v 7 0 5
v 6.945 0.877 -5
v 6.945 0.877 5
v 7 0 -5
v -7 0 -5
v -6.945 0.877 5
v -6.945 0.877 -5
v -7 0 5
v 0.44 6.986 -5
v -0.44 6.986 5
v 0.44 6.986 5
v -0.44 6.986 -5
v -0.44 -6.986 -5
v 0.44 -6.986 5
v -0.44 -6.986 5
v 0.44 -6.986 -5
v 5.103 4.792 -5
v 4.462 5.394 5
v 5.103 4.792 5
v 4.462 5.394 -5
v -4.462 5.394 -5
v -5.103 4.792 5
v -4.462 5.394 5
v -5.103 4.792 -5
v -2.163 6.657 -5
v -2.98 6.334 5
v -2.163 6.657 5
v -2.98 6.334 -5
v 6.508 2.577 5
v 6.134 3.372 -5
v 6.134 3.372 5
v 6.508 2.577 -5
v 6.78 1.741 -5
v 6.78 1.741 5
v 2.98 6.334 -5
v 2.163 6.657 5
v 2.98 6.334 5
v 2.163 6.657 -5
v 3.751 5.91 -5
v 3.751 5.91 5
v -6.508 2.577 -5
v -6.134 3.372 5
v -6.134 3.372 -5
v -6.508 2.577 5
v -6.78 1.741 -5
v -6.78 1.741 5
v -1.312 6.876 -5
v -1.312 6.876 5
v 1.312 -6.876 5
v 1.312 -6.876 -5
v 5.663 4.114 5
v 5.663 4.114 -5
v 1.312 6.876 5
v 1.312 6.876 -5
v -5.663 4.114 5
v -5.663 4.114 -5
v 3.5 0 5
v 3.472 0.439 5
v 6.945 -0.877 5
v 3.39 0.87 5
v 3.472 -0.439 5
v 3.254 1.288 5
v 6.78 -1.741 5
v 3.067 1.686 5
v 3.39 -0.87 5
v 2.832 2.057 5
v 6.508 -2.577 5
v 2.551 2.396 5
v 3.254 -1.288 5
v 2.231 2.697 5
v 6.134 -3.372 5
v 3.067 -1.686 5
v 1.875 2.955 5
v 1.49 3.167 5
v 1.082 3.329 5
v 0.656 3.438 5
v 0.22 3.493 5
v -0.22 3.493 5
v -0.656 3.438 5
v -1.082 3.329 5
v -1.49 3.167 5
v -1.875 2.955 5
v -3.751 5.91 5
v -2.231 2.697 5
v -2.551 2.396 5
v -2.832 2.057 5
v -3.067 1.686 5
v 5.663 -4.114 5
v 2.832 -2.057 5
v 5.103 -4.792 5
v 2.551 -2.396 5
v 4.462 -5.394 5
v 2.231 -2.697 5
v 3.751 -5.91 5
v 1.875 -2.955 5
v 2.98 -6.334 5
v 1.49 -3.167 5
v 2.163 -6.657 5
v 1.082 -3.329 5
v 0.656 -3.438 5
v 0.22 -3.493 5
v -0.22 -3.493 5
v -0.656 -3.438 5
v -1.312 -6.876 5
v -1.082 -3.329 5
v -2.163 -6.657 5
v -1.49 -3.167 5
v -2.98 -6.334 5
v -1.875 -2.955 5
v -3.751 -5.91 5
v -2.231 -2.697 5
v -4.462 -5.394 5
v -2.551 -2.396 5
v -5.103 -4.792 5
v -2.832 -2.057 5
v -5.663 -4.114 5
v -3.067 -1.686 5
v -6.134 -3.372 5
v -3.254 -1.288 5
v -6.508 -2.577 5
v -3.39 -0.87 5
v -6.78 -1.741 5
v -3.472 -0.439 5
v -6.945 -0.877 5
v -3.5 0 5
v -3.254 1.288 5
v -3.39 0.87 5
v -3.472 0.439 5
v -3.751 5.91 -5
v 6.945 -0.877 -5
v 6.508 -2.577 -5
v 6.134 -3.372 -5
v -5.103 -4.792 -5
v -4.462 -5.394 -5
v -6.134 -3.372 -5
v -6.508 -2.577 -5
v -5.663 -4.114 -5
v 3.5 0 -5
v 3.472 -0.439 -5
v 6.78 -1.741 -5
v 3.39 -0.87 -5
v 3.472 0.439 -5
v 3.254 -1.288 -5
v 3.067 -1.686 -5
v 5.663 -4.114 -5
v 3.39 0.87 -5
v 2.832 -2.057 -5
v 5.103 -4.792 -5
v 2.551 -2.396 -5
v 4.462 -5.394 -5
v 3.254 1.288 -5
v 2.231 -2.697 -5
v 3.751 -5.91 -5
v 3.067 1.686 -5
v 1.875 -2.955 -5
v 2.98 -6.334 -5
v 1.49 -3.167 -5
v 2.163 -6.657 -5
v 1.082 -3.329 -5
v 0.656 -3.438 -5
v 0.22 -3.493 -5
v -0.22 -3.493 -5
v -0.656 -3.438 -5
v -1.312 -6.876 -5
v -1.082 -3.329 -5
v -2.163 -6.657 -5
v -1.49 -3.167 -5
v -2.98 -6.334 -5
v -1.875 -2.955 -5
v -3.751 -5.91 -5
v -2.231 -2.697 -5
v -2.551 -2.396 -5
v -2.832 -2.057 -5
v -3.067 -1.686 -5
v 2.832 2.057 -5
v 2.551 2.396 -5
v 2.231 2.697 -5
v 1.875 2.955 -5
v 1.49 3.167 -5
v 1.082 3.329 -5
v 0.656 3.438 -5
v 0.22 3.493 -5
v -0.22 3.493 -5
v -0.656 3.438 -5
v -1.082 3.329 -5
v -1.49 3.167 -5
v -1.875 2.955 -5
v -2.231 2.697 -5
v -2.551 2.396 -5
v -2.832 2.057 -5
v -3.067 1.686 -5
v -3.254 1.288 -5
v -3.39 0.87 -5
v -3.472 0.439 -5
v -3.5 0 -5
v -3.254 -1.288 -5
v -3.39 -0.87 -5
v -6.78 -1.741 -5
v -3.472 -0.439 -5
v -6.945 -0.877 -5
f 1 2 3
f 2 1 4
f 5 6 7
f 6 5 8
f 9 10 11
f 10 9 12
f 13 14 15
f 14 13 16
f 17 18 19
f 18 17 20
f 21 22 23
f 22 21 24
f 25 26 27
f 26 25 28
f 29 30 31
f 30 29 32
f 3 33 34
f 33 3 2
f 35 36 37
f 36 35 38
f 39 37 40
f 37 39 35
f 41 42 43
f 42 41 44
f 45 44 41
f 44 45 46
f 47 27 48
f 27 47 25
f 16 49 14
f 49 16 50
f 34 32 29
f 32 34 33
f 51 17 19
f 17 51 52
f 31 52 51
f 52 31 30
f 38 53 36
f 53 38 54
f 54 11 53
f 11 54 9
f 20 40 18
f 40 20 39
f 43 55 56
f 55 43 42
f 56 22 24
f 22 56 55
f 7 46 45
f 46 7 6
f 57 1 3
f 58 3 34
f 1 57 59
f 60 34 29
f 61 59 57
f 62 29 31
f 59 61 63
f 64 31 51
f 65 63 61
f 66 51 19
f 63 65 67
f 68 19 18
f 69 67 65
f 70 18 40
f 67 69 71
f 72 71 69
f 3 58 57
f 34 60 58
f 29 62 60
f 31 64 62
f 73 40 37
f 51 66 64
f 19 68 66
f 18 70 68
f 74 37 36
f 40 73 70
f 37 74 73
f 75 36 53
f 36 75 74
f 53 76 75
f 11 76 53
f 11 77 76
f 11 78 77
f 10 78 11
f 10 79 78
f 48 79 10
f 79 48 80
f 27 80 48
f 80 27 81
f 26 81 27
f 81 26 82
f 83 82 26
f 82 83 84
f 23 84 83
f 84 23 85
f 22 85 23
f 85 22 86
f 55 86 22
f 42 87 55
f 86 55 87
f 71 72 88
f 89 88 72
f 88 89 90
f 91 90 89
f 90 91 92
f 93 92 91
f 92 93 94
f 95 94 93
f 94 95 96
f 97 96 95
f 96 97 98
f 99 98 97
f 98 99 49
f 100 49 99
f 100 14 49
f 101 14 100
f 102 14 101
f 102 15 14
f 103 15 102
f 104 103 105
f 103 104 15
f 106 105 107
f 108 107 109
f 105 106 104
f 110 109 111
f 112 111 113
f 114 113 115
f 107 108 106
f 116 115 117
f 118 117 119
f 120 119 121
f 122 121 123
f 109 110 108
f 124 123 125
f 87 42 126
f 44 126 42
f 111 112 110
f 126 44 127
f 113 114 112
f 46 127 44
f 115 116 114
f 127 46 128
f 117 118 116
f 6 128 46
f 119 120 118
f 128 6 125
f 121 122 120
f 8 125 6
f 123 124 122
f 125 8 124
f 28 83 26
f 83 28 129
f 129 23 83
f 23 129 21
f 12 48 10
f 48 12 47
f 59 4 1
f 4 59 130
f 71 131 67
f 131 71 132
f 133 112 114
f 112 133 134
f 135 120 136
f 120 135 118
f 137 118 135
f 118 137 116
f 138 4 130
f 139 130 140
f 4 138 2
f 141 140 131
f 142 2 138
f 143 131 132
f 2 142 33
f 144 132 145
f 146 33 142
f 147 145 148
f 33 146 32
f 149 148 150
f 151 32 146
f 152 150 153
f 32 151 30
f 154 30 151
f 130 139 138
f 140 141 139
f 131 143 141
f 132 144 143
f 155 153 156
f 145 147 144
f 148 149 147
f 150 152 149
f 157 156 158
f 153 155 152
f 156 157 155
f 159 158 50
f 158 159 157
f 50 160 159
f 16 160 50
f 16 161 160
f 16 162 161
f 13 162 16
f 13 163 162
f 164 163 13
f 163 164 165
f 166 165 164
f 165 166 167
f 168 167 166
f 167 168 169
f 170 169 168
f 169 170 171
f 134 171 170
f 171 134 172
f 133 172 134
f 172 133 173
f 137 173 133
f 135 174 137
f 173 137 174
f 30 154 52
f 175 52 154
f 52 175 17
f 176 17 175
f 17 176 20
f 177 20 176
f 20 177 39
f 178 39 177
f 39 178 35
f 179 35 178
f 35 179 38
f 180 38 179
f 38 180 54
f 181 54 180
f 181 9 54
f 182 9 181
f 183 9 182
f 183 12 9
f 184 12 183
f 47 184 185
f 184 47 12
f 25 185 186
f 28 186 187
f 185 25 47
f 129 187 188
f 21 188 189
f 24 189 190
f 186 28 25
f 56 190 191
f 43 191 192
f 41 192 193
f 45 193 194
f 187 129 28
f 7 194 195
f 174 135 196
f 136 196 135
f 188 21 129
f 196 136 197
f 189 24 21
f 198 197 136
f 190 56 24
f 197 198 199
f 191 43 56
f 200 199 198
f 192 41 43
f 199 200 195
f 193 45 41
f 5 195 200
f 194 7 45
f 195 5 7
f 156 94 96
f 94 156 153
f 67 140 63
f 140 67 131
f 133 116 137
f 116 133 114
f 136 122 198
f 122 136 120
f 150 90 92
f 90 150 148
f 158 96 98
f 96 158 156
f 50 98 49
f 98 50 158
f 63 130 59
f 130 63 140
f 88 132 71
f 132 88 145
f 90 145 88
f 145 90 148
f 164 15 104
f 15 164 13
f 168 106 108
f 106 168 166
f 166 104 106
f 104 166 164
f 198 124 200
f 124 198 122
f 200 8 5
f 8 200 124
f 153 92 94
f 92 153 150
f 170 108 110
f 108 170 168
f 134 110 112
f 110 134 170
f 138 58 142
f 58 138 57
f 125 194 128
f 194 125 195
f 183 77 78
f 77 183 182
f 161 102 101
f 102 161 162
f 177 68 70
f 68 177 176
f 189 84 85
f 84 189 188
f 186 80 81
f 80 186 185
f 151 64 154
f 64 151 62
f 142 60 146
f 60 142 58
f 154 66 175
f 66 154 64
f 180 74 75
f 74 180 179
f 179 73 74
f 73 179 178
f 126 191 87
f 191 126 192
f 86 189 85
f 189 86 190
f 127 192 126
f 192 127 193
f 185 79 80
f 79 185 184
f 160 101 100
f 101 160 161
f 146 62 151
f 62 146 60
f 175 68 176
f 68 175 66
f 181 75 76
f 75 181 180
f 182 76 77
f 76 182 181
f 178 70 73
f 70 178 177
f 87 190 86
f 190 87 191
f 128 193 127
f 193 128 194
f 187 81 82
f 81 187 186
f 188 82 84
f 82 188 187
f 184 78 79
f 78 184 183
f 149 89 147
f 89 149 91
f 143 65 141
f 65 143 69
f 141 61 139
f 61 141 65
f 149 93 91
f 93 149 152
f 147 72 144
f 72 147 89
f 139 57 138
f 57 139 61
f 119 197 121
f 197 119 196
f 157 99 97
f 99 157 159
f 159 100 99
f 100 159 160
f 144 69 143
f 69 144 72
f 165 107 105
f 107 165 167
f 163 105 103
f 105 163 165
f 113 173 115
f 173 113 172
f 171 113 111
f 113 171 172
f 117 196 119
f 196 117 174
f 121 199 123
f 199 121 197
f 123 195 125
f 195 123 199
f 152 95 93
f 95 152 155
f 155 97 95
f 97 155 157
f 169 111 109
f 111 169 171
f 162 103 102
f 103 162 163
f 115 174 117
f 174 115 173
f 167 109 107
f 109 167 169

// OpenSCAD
$fn = 50;


difference() {
	union() {
		translate(v = [0, 0, -5.0000000000]) {
			cylinder(h = 10, r = 7.0000000000);
		}
	}
	union() {
		translate(v = [0, 0, -100.0000000000]) {
			cylinder(h = 200, r = 3.5000000000);
		}
	}
}
